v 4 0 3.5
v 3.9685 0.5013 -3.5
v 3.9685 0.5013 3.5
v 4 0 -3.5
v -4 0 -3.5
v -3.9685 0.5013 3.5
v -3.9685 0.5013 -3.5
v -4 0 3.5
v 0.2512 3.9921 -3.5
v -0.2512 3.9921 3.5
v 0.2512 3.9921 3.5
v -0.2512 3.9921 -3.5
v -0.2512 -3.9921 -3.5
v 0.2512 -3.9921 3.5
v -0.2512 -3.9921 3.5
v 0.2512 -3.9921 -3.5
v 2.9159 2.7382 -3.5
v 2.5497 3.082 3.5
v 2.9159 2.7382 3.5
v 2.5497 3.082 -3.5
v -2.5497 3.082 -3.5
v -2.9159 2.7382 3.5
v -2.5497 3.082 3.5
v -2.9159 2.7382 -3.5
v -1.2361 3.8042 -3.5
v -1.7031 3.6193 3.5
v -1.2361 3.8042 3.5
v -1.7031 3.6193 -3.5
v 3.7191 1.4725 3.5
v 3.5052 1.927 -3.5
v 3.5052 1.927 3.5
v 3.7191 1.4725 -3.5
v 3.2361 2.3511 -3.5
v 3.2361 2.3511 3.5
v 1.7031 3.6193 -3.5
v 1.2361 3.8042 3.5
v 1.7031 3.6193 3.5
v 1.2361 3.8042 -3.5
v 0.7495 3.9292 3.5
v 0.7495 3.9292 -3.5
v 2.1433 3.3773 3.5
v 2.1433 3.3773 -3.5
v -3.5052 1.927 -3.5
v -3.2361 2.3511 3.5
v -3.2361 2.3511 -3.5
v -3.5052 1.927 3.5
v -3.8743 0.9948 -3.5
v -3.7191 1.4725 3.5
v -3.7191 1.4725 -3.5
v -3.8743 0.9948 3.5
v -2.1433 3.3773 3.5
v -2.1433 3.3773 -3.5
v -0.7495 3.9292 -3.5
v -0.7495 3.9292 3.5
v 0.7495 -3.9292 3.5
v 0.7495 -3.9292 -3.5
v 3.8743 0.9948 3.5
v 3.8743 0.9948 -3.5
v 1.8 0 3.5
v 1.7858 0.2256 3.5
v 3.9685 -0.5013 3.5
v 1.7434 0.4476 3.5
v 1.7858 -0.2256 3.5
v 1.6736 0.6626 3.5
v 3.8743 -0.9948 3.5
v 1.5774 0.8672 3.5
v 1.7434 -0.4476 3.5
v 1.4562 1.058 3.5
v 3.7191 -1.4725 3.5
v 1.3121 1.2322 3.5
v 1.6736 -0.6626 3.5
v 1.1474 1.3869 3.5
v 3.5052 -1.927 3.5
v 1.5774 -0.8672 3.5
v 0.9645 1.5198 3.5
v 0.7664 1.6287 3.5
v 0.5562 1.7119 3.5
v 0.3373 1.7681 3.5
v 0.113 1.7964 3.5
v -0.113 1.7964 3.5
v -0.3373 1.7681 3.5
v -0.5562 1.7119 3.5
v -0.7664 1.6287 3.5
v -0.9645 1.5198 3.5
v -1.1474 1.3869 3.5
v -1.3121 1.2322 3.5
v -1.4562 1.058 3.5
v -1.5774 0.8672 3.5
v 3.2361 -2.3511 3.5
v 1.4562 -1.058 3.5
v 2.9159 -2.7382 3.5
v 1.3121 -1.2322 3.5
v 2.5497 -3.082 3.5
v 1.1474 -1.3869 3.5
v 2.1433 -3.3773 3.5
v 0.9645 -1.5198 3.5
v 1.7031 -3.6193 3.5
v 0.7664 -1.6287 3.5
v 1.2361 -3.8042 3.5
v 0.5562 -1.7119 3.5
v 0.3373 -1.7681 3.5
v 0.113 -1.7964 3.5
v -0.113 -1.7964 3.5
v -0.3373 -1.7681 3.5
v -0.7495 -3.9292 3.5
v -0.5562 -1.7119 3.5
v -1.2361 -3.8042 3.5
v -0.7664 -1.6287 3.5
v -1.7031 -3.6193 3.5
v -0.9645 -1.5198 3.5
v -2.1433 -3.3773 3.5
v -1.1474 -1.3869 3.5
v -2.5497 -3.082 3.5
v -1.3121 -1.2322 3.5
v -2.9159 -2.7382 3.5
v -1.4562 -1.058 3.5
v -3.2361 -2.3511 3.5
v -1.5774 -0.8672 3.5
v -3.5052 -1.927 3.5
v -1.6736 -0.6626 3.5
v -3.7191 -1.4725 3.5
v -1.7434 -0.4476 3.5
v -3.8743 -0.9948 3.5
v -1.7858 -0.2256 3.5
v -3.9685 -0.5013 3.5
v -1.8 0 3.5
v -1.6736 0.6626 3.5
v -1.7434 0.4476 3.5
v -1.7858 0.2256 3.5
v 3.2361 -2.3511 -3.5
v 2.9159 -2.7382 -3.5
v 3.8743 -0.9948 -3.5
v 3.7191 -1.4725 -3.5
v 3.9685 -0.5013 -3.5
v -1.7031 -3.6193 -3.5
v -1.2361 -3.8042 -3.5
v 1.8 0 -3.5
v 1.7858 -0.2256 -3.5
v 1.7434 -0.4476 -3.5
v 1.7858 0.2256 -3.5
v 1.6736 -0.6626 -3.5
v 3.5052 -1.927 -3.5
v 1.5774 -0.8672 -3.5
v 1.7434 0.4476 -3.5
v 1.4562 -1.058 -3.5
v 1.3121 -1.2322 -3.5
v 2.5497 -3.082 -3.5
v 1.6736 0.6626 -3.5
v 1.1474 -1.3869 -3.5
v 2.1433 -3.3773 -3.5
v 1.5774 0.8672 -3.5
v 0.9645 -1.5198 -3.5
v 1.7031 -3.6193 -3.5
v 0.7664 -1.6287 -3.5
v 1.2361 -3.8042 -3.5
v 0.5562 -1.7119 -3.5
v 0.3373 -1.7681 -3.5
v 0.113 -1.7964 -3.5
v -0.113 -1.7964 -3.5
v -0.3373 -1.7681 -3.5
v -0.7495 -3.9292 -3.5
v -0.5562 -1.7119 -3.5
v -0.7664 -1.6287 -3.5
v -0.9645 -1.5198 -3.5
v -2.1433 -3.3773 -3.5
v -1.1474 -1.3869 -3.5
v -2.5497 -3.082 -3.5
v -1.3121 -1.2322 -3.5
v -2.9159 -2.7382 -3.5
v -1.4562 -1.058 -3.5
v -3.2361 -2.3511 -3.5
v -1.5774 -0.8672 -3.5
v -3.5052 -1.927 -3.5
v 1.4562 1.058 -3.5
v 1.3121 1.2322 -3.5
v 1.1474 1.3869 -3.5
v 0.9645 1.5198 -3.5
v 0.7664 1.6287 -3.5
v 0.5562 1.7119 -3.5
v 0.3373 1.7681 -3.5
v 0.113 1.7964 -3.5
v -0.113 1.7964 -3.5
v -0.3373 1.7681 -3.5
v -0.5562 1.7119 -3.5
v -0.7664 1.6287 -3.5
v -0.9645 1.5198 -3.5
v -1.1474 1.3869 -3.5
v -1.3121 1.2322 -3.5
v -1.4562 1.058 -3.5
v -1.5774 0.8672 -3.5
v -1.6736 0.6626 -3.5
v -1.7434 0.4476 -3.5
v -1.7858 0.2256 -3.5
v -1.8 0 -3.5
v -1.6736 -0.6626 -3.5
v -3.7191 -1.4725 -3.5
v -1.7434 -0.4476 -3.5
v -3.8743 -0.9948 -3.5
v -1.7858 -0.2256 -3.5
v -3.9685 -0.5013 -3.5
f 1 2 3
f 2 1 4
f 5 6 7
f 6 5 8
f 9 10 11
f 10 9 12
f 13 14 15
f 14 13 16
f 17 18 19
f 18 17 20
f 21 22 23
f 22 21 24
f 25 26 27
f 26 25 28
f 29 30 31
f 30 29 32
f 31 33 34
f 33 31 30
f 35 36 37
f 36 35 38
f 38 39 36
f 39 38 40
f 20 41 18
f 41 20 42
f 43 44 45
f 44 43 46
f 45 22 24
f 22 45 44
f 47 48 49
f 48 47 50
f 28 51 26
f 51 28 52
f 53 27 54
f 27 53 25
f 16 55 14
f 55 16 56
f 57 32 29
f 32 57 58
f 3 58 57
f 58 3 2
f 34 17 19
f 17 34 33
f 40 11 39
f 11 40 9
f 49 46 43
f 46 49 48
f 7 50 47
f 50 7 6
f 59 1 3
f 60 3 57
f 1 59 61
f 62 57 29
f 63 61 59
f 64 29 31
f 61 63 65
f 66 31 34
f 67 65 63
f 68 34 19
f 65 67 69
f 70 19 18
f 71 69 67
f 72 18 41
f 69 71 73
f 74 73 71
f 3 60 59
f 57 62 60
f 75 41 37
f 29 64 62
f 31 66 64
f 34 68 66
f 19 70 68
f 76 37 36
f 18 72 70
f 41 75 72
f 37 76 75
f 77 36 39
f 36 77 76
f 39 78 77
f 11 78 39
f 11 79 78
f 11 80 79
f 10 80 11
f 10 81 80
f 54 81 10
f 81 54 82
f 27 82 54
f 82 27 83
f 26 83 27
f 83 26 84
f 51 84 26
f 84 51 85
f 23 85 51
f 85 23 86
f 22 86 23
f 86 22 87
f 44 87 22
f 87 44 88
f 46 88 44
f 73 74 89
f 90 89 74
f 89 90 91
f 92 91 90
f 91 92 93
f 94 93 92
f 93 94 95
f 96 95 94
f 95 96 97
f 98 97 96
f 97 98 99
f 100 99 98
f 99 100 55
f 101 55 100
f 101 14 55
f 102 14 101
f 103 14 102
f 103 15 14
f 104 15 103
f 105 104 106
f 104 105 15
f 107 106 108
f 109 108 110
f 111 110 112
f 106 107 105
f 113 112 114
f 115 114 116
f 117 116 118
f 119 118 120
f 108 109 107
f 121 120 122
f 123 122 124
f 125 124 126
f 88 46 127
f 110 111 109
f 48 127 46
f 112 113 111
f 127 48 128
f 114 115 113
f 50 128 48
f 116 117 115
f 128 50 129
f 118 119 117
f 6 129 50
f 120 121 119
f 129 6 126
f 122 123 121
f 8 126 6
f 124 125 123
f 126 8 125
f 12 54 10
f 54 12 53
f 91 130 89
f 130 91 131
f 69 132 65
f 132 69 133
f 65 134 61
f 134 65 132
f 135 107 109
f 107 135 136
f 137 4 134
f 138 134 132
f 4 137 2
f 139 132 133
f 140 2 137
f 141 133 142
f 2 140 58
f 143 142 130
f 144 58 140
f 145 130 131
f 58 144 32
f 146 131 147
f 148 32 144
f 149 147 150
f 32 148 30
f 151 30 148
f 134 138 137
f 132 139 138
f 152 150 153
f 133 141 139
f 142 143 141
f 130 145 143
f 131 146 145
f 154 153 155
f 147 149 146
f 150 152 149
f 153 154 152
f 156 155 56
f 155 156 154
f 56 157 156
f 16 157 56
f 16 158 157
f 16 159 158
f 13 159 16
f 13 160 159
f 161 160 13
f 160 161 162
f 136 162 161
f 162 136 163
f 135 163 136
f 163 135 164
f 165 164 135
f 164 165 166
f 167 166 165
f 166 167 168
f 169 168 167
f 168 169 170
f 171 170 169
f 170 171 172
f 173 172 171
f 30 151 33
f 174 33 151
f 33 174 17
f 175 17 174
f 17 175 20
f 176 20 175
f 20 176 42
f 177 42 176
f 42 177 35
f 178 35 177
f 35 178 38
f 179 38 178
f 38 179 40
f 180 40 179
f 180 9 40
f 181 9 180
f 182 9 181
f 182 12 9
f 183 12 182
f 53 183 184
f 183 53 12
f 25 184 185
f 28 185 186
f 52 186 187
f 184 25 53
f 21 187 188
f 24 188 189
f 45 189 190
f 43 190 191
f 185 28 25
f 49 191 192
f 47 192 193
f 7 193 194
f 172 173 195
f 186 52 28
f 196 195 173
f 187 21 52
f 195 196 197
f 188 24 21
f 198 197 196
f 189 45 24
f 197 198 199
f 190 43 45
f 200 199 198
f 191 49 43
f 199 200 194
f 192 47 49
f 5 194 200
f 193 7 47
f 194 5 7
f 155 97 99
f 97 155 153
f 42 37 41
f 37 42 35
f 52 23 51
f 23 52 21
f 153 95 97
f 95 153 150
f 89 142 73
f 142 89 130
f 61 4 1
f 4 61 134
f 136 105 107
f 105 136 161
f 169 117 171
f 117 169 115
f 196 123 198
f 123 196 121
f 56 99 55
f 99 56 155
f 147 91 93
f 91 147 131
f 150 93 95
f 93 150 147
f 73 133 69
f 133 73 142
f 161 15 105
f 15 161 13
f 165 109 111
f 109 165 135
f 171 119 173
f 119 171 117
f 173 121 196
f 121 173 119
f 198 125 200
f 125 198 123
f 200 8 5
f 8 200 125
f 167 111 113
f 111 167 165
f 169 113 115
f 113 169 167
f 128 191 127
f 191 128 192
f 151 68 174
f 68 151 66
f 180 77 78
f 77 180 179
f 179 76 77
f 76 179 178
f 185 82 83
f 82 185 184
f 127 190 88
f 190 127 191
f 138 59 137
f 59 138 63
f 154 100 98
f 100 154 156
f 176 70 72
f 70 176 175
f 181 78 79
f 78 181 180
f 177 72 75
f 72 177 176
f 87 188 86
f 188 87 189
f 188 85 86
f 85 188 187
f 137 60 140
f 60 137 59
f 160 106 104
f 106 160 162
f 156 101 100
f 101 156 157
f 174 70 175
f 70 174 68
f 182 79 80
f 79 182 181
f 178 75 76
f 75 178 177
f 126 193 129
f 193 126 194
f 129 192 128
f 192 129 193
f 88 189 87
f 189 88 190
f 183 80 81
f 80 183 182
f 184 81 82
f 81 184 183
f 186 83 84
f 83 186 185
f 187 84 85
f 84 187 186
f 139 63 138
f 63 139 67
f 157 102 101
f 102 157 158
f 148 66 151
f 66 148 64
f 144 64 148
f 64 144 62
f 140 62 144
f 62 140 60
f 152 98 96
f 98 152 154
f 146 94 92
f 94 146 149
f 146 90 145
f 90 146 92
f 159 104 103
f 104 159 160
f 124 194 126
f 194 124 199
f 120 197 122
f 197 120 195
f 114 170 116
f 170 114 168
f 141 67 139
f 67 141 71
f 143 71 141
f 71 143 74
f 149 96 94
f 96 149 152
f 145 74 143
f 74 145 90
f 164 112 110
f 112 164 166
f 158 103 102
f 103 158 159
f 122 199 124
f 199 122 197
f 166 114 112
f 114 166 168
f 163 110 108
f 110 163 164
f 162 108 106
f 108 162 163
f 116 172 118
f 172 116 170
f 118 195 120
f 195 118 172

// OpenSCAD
$fn = 50;


difference() {
	union() {
		translate(v = [0, 0, -3.5000000000]) {
			cylinder(h = 7, r = 4.0000000000);
		}
	}
	union() {
		translate(v = [0, 0, -100.0000000000]) {
			cylinder(h = 200, r = 1.8000000000);
		}
	}
}
